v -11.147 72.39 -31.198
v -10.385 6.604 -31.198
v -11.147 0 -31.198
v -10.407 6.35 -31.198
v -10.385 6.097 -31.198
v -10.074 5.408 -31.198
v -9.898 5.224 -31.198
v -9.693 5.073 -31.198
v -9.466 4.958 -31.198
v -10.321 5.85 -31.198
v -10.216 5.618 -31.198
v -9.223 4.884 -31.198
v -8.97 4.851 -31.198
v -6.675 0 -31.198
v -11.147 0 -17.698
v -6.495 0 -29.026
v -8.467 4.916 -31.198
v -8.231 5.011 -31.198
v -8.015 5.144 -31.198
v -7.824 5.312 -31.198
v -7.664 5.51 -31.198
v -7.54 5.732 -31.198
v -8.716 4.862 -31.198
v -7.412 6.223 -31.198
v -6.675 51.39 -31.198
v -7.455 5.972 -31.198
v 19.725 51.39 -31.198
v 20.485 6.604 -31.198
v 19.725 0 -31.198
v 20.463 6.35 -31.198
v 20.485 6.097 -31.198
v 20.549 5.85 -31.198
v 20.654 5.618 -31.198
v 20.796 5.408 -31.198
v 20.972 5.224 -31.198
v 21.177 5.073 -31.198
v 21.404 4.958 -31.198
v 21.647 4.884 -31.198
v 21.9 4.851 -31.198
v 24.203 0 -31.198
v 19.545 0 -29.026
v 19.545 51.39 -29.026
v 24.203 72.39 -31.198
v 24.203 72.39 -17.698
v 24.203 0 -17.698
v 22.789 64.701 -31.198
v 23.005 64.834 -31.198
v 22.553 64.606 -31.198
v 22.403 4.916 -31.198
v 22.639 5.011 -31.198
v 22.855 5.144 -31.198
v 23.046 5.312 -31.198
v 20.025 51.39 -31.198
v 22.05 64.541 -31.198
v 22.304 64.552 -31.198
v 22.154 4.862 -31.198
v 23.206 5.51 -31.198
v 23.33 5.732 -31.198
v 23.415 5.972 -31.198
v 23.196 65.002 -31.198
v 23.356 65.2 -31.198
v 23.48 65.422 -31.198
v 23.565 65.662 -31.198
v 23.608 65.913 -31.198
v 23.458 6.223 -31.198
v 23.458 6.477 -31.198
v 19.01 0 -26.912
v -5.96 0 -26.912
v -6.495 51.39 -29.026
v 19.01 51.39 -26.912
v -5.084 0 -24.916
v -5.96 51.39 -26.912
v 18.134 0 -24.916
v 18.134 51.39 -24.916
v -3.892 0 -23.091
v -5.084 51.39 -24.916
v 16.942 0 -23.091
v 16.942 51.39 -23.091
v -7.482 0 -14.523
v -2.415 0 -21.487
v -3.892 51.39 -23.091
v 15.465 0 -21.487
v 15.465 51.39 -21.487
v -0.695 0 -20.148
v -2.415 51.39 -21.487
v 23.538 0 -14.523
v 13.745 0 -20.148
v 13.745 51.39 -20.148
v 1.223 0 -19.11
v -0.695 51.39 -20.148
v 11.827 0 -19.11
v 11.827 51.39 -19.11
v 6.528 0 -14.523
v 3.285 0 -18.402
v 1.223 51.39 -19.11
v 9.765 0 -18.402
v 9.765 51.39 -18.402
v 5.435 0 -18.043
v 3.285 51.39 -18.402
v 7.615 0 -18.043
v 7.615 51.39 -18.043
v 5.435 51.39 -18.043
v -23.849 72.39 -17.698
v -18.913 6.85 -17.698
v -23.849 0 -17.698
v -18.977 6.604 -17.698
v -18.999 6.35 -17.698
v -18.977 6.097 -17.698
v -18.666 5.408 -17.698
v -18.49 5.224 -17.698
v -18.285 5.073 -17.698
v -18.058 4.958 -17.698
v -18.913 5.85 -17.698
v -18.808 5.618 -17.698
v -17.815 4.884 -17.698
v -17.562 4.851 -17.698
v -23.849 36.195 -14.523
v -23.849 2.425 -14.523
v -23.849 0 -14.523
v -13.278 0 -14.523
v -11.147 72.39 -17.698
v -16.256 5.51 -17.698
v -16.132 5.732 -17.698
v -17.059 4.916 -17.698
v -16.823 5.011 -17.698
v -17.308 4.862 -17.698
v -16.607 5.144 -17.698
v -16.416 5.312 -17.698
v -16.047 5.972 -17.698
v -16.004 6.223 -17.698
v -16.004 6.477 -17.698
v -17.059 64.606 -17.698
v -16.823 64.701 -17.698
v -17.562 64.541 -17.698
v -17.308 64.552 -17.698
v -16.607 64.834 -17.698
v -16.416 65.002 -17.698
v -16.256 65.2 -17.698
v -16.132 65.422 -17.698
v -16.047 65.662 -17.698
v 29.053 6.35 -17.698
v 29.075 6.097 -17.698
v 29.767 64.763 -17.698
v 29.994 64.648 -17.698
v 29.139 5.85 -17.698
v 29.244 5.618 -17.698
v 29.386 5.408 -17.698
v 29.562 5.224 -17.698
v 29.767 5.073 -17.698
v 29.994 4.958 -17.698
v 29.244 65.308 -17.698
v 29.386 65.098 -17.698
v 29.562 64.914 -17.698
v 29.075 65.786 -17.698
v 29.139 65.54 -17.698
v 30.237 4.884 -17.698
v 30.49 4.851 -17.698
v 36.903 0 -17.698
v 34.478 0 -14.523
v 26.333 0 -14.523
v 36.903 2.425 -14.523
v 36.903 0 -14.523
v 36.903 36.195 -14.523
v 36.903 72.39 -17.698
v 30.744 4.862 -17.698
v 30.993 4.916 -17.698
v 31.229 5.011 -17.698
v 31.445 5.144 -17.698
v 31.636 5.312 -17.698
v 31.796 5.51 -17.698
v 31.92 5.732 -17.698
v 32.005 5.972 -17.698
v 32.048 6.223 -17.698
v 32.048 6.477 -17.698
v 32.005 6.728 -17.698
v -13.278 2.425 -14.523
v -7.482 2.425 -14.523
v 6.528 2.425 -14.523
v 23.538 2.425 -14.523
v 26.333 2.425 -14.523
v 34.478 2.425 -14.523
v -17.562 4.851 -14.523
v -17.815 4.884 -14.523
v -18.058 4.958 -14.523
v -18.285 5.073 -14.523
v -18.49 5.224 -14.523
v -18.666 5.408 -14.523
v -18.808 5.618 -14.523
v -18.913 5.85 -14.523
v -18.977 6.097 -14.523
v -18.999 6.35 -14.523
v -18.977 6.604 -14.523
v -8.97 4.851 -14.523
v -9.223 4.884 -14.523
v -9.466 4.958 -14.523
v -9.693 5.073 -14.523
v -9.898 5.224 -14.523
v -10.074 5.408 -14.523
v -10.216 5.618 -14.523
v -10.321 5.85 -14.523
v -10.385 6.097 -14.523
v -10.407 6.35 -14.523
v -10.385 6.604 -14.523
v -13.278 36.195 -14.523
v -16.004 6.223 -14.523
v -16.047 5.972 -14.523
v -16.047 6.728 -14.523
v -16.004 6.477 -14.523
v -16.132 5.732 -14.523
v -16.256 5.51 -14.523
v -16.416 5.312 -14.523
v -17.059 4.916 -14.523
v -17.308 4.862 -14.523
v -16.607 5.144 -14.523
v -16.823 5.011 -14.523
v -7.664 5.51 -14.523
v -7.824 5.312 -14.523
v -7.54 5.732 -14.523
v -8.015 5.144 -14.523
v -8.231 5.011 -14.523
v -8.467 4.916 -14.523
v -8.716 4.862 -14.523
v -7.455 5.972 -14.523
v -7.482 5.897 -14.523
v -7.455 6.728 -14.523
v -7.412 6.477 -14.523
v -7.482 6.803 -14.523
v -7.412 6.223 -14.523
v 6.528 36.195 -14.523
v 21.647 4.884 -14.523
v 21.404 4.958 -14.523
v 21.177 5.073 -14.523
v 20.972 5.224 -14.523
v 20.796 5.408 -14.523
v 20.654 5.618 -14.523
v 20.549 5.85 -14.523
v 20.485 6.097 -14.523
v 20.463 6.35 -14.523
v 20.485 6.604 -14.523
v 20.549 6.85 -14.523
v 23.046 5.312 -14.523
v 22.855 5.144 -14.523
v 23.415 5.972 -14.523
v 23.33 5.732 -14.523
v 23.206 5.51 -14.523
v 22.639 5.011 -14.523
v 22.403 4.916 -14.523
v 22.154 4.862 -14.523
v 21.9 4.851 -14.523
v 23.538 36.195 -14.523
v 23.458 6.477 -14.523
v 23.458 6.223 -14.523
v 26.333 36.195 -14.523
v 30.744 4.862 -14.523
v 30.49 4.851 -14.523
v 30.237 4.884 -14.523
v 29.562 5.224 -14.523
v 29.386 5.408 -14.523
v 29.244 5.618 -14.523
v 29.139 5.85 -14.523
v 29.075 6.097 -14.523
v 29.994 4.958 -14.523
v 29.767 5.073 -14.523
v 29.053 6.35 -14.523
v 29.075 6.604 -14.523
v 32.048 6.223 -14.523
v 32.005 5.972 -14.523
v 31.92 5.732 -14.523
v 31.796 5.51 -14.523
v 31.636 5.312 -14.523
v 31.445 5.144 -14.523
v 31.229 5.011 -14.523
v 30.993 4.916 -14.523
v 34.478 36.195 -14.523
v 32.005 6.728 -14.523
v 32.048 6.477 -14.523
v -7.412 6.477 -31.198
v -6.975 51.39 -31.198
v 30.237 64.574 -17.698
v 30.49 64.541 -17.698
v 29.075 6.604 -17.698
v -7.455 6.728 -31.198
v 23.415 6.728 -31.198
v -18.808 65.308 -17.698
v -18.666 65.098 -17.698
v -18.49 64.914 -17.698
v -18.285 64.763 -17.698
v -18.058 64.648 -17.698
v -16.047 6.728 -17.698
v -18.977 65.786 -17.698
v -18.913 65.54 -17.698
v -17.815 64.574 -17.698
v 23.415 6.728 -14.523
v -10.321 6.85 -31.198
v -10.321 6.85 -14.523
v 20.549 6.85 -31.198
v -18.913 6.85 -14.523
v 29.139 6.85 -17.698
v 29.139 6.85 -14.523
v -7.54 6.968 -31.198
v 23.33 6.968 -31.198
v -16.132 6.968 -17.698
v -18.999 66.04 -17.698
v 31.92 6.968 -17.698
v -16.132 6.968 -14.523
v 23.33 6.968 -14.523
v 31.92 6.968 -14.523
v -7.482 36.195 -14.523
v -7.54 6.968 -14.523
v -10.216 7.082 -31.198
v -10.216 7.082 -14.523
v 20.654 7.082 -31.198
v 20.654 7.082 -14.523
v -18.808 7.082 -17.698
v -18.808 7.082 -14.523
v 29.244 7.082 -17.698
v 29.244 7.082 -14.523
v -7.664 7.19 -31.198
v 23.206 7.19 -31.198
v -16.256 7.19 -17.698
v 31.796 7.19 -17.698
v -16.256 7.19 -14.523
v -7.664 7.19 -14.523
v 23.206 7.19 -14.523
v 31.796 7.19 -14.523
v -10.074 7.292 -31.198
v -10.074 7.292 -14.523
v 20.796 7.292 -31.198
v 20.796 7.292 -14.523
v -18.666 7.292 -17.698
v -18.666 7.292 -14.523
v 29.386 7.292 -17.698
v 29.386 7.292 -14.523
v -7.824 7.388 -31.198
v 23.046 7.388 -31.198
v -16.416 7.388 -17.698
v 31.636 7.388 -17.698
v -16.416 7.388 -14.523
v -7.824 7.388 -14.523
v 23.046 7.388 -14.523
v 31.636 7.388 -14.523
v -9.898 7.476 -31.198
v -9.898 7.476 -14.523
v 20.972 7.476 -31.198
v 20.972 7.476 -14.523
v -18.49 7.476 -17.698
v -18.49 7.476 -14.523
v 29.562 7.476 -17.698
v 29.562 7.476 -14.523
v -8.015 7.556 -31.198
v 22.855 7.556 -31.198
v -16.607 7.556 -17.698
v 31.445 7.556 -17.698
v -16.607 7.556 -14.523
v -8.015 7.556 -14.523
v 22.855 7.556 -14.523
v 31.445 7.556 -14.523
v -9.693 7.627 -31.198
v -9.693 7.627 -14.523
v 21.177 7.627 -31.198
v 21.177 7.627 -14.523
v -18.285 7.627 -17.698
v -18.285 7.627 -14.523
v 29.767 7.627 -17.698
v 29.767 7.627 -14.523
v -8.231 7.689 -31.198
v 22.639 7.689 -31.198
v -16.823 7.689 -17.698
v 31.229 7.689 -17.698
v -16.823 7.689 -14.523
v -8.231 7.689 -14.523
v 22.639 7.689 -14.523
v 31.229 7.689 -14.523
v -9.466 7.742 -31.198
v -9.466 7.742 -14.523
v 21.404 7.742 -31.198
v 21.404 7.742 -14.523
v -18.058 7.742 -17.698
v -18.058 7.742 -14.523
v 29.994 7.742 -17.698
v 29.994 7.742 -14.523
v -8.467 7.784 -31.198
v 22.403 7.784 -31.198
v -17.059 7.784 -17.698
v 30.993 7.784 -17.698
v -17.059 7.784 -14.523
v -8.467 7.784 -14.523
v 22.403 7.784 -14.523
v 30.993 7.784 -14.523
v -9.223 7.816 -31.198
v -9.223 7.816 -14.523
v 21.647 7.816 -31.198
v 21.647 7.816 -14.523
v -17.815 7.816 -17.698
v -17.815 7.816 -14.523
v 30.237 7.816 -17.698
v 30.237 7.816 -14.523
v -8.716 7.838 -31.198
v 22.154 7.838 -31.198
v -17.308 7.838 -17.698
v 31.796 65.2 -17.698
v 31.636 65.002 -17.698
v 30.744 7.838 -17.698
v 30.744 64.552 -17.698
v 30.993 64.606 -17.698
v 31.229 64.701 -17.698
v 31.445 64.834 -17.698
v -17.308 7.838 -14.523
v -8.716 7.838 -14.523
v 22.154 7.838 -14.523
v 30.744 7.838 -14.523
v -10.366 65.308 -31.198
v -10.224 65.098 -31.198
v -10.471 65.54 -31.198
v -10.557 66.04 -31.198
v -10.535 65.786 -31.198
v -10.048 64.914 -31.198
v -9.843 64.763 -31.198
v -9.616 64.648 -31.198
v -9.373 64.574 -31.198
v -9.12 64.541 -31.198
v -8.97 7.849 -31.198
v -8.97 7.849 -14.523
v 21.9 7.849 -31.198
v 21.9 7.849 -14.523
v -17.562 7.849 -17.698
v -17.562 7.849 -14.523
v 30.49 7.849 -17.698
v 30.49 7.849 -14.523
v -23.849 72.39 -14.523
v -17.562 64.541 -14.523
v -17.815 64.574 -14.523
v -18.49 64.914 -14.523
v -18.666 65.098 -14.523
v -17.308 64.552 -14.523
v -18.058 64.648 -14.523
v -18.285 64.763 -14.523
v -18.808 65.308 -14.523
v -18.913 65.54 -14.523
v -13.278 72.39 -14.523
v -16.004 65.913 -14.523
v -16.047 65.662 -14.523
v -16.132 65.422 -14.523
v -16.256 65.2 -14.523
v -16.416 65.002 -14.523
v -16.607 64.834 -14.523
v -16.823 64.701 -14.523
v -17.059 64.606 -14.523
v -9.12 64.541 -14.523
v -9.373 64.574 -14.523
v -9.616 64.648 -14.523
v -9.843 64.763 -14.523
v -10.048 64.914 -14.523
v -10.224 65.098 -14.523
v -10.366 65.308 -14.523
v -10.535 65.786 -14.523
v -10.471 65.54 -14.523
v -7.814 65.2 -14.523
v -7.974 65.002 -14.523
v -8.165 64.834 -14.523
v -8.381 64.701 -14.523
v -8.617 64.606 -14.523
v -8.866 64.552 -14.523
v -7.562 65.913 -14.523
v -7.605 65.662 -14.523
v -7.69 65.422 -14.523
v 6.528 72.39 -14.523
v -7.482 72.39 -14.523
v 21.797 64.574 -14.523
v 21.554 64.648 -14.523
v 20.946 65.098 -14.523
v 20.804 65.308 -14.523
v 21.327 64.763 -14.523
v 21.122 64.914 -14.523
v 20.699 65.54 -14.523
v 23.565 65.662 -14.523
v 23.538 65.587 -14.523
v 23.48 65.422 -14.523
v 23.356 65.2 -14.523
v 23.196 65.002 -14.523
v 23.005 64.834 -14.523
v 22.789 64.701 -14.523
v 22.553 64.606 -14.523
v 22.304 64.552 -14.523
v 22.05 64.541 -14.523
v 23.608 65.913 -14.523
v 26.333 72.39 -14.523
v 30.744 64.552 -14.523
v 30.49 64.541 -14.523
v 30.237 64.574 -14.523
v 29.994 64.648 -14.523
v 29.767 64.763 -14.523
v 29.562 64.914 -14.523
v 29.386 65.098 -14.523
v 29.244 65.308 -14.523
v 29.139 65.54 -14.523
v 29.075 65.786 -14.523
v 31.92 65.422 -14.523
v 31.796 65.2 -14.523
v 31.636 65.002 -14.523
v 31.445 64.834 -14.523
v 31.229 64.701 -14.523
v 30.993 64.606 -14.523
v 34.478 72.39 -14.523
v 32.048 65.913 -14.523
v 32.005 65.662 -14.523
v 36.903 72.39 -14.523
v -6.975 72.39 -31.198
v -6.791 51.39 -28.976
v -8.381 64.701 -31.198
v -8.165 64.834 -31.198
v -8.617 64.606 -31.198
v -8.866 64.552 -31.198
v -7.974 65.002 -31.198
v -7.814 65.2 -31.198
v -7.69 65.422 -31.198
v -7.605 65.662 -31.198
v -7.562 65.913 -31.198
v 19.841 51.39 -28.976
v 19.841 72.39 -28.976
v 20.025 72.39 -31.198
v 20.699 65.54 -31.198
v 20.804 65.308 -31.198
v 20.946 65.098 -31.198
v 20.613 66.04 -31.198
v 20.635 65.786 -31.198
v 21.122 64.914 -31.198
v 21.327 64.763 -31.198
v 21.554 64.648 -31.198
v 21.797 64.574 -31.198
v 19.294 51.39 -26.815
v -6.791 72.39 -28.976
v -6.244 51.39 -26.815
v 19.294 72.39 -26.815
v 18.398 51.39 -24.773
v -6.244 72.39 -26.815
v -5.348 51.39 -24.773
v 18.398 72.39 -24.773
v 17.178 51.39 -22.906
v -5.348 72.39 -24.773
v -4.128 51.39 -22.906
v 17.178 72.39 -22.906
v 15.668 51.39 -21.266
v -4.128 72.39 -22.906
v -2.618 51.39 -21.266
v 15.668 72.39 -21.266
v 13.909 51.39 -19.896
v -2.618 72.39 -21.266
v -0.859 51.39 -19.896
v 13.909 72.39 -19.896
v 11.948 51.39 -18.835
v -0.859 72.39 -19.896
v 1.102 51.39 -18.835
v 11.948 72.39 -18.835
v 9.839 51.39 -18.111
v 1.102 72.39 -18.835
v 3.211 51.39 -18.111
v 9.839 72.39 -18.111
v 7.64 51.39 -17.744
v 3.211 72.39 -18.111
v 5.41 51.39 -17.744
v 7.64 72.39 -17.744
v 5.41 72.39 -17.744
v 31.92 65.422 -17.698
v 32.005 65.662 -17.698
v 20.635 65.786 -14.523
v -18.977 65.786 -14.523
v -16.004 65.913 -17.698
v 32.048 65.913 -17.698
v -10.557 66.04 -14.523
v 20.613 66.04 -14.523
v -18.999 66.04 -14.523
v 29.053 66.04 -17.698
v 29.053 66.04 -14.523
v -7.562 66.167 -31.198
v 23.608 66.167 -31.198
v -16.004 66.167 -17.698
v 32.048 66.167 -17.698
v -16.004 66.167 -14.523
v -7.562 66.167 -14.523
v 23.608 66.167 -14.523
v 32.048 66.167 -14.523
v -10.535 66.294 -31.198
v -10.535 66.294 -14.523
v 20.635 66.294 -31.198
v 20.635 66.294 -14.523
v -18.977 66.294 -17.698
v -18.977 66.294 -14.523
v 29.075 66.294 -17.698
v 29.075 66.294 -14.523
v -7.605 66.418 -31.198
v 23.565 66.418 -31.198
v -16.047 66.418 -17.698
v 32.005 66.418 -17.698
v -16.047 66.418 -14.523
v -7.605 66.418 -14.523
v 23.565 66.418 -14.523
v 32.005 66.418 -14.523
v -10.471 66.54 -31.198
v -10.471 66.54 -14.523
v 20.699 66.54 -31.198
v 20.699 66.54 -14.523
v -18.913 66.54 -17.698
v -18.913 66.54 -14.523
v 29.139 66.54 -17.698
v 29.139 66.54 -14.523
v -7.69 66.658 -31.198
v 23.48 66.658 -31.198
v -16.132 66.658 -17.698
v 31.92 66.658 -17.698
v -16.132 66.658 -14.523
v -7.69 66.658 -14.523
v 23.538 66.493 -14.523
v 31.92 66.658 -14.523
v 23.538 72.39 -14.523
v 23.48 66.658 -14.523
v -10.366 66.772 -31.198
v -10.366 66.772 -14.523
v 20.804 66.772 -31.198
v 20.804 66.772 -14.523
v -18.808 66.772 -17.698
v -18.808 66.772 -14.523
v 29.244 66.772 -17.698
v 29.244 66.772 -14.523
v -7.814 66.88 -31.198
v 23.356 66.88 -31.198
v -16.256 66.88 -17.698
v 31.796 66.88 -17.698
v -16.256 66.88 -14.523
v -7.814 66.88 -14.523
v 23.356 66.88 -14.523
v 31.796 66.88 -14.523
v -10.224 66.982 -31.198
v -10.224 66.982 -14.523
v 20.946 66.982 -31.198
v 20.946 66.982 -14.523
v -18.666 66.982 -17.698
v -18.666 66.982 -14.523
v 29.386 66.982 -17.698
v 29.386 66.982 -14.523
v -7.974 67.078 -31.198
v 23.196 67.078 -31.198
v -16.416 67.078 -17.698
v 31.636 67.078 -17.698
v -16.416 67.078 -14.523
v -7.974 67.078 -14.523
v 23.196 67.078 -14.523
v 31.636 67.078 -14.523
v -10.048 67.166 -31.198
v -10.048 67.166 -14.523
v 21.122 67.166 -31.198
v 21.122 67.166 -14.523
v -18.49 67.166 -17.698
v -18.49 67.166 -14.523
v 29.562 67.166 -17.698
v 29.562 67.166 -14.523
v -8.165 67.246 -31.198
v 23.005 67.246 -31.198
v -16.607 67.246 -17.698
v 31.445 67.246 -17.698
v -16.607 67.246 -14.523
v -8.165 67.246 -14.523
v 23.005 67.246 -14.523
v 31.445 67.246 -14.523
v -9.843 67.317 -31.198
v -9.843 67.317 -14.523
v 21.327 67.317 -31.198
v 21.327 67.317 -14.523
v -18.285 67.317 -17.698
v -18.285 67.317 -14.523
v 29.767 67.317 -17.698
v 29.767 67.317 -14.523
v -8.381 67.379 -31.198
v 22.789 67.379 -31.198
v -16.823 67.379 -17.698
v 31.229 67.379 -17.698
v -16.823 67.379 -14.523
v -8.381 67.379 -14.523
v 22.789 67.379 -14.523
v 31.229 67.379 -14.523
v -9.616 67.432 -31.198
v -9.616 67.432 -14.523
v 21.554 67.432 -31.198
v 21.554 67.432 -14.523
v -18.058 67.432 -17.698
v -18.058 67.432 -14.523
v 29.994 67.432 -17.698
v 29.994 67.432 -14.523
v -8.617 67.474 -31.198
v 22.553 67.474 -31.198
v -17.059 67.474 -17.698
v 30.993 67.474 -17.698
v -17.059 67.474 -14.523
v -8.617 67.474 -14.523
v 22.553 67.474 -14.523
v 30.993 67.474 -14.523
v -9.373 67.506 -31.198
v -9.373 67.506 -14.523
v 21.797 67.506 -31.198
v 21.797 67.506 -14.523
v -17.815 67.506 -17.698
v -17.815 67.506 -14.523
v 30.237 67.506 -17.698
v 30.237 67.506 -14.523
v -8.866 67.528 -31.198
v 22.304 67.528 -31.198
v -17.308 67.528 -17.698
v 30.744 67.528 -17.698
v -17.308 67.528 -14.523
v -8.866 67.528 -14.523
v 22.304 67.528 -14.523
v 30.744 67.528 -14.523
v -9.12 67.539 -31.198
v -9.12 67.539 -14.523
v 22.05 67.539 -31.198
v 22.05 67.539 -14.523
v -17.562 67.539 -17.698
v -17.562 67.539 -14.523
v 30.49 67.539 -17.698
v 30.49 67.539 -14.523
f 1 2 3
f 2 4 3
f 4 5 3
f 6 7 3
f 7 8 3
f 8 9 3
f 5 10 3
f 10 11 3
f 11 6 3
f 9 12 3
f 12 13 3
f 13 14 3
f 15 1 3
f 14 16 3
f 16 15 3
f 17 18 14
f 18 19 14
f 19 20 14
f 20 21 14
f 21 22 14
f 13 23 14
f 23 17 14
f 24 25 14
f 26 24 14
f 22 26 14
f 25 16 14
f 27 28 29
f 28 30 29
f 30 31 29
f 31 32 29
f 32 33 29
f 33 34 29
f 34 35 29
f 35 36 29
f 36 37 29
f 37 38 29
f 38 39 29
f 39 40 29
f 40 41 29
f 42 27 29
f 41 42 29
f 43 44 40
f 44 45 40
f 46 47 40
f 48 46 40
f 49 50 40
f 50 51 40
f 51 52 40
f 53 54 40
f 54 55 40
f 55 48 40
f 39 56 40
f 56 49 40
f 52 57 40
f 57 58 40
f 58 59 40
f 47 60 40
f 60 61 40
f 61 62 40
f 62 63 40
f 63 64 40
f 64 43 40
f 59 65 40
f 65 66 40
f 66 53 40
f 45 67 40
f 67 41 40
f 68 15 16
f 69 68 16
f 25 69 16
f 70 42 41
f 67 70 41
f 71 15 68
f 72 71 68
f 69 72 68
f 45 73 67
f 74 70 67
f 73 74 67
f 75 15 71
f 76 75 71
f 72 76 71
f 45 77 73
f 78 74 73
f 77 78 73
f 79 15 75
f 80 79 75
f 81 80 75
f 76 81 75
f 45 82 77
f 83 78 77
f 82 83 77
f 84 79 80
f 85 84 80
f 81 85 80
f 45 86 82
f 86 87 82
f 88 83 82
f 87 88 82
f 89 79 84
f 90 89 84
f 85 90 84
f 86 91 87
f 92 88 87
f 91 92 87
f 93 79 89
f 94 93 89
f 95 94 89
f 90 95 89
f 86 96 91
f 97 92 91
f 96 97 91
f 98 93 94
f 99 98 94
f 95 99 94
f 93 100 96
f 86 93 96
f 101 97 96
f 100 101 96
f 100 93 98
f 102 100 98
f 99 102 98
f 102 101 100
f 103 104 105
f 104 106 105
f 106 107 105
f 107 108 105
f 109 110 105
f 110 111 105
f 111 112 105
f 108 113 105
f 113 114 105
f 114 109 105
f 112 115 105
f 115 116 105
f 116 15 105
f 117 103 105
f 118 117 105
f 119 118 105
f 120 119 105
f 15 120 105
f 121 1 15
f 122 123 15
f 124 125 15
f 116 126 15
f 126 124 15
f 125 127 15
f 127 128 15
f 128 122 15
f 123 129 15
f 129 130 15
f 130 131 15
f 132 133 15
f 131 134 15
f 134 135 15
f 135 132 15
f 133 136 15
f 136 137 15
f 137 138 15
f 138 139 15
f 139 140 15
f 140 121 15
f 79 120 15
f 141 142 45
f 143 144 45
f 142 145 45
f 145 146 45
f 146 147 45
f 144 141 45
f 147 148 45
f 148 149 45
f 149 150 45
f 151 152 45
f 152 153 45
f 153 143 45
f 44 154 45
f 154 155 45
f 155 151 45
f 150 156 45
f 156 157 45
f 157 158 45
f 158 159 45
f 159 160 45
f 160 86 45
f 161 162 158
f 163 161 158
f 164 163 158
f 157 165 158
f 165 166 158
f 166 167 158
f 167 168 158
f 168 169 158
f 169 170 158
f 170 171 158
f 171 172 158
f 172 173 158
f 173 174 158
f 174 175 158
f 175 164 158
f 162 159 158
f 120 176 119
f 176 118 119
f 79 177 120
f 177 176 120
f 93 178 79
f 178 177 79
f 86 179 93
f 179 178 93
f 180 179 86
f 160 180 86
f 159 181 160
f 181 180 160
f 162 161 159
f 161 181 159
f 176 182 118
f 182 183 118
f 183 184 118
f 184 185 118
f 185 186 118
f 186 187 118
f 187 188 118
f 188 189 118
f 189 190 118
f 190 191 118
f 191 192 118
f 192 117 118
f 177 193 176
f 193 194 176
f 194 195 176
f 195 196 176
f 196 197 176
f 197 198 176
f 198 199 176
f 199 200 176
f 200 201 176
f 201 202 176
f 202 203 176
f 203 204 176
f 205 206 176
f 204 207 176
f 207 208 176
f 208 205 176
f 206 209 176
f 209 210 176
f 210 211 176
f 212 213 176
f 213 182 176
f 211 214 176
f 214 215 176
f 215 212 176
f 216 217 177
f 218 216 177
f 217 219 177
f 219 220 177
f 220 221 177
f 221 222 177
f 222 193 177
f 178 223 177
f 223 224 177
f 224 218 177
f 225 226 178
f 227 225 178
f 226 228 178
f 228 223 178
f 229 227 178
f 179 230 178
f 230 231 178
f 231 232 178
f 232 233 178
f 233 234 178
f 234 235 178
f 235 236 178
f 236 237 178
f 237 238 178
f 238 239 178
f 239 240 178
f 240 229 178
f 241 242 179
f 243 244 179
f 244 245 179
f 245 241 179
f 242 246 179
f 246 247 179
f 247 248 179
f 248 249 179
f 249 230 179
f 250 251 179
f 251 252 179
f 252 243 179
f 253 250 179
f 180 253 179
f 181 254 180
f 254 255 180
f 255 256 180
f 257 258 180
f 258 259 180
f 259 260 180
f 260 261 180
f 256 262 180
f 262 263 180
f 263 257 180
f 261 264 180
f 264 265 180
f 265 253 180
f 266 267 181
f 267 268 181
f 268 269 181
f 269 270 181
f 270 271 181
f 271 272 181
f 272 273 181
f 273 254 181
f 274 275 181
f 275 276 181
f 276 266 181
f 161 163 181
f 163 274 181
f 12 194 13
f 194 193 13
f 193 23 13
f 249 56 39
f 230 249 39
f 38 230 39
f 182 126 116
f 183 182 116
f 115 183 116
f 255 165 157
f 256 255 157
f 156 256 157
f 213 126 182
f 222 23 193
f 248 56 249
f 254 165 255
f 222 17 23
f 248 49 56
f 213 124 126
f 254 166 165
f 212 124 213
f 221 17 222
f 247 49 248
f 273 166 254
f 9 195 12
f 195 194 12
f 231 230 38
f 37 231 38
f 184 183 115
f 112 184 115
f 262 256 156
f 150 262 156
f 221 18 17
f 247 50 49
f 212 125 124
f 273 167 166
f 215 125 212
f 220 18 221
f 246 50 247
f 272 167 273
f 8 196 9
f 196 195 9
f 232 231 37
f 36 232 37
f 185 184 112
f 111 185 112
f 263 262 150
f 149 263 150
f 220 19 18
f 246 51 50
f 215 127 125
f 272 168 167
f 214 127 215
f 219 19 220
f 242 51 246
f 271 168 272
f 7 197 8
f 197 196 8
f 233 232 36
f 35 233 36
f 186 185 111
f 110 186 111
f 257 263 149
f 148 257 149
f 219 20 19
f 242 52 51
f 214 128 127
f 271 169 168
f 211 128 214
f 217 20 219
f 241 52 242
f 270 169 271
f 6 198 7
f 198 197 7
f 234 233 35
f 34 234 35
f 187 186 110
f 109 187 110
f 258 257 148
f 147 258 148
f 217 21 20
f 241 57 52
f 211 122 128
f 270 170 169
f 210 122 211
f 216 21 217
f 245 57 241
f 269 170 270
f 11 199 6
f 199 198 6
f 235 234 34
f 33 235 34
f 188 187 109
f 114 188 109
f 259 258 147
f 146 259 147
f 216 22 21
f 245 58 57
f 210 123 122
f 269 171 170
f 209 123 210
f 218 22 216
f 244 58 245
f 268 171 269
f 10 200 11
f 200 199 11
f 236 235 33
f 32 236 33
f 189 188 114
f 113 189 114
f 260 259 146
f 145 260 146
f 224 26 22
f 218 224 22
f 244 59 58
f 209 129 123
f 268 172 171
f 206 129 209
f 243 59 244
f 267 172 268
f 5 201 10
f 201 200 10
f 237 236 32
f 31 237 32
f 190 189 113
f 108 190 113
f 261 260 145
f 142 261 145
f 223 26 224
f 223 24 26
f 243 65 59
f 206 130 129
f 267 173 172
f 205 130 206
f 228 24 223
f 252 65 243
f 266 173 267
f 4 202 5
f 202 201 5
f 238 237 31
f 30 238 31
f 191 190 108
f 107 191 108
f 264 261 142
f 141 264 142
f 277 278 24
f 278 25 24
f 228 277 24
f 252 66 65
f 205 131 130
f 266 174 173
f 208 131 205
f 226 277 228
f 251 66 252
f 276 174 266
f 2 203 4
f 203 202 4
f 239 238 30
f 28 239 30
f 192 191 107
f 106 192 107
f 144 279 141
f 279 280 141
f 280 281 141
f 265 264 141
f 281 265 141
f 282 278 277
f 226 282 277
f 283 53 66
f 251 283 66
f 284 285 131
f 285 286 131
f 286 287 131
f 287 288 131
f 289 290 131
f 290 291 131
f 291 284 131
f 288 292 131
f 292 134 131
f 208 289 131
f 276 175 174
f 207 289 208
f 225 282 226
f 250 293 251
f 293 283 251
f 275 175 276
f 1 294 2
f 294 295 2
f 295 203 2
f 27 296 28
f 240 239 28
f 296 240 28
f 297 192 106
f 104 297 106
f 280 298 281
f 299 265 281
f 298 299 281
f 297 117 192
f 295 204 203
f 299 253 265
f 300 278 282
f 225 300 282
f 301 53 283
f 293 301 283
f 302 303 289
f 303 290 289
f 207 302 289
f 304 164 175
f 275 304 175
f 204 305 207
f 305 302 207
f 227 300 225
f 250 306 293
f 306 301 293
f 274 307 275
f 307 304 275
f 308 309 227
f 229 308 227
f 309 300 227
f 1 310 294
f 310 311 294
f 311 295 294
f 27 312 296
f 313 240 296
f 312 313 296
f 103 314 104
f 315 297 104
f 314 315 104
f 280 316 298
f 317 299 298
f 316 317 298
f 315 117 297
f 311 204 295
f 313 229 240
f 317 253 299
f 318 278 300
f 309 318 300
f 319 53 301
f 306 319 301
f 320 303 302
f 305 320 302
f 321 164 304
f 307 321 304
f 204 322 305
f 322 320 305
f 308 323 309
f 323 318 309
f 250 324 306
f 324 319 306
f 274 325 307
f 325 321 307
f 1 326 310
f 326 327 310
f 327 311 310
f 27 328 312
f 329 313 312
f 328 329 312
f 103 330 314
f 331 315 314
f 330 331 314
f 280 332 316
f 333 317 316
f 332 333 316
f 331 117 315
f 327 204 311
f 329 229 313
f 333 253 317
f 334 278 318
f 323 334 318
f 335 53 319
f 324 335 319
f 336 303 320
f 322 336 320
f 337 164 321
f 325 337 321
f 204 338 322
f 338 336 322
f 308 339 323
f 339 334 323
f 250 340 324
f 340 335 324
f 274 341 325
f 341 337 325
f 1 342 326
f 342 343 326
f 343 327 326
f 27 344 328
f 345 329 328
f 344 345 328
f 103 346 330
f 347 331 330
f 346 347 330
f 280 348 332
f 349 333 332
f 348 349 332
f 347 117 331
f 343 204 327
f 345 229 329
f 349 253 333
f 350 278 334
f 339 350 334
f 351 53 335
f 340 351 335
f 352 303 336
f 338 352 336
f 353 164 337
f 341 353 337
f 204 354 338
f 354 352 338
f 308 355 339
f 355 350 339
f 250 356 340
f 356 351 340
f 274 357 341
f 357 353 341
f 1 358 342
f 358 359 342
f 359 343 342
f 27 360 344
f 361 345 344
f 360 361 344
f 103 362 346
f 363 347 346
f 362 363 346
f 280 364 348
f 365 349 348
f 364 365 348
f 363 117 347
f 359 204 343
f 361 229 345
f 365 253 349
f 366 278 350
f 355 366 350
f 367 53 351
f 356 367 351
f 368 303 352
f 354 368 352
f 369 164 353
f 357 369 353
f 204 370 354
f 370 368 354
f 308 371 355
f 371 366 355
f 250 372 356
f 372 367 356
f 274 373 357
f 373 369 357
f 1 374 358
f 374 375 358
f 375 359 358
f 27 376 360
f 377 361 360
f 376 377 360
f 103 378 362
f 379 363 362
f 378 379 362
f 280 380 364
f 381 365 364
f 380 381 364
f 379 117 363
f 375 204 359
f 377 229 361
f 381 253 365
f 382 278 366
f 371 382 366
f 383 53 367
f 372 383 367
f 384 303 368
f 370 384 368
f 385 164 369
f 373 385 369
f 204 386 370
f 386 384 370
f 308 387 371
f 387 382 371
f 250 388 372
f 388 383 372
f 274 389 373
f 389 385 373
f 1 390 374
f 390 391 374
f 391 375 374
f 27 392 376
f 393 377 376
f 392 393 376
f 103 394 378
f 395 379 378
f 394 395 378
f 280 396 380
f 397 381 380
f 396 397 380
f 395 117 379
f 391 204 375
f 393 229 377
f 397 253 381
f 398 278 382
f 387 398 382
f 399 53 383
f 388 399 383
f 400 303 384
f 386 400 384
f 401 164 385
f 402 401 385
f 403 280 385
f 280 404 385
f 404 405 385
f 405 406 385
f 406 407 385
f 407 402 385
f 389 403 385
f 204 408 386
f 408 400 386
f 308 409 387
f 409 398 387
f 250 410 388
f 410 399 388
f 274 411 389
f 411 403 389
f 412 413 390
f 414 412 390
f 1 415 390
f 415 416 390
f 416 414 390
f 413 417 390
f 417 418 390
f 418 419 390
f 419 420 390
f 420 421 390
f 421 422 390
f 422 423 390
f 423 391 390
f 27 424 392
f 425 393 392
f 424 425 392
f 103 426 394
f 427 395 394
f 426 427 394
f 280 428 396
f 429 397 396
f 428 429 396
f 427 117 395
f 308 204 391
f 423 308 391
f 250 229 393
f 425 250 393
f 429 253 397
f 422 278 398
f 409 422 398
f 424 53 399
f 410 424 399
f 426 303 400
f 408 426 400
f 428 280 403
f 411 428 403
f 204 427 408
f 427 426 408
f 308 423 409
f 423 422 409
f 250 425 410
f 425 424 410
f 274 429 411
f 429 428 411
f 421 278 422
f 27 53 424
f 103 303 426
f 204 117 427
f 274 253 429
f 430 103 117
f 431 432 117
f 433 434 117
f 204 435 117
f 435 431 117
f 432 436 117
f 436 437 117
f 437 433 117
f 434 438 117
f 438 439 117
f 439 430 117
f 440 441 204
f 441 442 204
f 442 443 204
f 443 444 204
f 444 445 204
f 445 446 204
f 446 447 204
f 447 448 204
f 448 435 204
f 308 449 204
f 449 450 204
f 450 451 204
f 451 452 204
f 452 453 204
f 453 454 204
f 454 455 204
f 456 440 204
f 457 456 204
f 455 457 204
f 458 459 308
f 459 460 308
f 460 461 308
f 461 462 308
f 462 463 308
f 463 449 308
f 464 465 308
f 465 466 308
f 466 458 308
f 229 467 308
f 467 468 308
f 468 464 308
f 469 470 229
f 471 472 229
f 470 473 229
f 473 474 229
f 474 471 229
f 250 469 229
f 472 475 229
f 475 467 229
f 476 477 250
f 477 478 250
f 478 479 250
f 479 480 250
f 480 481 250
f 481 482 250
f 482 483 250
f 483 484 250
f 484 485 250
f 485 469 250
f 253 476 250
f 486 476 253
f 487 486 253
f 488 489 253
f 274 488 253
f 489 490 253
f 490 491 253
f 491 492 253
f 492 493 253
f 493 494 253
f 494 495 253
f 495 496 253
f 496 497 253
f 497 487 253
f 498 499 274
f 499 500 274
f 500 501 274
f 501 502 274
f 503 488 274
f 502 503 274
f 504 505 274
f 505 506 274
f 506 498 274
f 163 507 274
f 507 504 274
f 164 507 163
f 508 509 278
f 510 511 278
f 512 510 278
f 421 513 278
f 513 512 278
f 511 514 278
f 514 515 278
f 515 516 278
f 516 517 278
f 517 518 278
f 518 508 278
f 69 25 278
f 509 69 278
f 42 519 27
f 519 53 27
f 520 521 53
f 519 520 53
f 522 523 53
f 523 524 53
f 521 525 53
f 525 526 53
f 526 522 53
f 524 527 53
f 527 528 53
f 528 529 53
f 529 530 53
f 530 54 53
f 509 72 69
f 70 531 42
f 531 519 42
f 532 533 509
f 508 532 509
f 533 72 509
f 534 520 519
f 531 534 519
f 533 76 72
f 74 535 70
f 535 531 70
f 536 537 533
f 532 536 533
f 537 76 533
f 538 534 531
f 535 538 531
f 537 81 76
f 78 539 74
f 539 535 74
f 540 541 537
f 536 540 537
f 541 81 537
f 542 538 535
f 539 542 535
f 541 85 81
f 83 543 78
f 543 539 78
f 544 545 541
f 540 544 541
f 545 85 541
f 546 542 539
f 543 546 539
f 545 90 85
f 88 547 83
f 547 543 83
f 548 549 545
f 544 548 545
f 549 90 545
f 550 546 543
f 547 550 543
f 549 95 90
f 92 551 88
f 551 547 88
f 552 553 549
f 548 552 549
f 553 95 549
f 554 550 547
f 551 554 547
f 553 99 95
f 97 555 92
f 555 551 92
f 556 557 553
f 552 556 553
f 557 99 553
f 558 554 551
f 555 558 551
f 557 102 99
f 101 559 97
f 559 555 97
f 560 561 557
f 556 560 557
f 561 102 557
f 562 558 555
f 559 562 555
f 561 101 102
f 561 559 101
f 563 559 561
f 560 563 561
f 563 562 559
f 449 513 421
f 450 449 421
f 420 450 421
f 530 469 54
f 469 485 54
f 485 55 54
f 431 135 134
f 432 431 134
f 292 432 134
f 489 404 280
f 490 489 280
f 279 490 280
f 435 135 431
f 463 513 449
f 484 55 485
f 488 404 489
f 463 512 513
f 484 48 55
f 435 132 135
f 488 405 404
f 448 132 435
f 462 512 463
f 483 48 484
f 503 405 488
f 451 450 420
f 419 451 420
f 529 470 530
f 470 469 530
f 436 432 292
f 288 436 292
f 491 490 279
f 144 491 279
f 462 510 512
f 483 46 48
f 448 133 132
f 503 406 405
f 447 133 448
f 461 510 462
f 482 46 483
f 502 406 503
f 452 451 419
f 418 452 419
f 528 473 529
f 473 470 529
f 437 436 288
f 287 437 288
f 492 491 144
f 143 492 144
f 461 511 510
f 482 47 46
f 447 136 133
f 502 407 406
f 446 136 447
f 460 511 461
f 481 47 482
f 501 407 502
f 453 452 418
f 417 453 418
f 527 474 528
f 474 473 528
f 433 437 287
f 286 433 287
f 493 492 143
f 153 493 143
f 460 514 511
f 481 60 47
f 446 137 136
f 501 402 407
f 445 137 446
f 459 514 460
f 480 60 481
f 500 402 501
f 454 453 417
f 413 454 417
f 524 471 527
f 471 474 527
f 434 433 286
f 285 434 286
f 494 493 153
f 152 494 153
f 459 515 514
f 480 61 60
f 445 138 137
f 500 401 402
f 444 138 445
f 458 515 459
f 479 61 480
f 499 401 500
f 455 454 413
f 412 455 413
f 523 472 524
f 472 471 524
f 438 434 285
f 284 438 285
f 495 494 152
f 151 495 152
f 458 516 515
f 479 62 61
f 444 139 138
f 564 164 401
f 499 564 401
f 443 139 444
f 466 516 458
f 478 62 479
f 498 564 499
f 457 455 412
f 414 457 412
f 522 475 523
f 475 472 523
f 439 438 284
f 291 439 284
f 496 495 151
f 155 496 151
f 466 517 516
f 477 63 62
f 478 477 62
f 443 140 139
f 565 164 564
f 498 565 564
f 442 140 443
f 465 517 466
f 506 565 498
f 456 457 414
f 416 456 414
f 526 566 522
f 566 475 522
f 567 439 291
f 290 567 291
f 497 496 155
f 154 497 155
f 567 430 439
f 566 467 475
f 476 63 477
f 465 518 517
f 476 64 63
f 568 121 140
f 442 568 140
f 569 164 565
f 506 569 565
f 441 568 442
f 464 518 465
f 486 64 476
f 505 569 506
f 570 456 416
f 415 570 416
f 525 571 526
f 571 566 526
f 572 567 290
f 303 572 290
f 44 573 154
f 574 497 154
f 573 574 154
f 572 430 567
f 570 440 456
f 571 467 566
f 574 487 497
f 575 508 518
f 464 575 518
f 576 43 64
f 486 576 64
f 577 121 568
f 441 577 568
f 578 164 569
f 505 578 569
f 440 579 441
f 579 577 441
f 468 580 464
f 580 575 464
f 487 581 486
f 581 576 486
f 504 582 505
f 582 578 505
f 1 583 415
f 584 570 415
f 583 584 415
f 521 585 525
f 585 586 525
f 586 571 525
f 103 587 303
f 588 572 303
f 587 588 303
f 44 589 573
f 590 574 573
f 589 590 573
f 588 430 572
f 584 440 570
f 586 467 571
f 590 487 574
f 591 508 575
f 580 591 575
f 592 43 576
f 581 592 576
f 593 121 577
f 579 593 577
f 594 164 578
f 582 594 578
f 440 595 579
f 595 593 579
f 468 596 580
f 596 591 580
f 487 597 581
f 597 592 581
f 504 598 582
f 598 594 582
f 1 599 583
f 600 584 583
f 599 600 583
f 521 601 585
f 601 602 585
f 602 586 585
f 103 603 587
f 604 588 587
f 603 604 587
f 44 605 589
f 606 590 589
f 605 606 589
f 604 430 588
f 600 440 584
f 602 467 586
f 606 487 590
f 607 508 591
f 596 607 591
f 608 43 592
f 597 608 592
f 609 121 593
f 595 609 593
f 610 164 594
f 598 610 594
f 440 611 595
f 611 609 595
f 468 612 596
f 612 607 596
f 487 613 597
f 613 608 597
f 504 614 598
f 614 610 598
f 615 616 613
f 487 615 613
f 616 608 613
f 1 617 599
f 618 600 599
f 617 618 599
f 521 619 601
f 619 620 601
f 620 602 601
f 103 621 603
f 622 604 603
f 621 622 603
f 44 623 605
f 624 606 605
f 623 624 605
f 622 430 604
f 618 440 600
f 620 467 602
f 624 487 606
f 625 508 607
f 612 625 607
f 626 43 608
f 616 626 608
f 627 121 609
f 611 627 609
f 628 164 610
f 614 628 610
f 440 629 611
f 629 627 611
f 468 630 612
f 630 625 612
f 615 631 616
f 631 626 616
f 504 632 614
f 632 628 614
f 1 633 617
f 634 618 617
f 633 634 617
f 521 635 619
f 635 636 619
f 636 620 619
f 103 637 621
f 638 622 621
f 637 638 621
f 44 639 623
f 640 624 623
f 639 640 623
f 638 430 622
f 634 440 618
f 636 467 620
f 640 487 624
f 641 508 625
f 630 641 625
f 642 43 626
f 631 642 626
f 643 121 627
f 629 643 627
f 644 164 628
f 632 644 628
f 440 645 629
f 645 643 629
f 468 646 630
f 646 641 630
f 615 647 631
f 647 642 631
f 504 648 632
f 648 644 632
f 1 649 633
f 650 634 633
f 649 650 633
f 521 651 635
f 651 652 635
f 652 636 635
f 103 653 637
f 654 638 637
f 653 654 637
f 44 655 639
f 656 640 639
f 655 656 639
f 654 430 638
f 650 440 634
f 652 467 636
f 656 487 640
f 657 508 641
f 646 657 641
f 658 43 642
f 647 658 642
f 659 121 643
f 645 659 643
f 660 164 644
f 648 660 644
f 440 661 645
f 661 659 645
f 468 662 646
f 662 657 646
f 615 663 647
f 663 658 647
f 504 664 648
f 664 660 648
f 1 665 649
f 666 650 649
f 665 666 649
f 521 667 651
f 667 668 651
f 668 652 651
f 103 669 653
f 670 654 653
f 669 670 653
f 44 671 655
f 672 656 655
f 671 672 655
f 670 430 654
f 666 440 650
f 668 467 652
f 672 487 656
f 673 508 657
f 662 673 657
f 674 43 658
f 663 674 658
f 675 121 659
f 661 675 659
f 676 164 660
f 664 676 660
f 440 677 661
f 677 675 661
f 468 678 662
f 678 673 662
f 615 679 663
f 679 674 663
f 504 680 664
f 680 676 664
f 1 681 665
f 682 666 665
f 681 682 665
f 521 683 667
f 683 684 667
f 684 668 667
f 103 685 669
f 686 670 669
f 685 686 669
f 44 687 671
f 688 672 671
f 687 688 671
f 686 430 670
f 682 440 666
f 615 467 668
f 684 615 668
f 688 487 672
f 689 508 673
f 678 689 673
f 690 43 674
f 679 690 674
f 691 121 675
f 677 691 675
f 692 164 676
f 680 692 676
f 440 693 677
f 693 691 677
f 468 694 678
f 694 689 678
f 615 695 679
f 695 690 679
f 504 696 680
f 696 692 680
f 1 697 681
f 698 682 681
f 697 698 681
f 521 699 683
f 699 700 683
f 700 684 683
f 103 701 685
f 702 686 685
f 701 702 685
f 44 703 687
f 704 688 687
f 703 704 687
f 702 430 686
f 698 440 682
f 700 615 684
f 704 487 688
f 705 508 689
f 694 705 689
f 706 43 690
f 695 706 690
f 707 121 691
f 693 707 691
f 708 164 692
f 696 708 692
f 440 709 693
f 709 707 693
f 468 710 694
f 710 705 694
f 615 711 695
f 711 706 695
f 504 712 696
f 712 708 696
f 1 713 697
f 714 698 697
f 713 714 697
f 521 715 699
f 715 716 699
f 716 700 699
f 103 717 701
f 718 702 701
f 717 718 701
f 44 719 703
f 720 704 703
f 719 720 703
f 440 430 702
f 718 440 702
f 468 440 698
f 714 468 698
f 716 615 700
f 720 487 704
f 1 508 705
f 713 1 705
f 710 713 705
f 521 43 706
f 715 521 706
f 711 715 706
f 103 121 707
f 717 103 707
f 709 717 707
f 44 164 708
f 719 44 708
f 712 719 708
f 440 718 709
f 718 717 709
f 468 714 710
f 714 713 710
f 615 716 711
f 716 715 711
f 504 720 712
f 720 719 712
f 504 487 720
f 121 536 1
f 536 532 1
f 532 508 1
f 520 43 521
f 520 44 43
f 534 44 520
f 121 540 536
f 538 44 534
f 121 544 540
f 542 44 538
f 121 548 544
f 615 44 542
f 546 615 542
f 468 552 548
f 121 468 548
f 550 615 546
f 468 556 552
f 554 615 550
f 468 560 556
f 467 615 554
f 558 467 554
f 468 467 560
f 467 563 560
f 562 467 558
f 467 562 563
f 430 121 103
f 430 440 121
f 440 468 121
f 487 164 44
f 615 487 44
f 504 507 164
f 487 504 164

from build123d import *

# Parameters (mm, degrees)
BOSS_EXTRUDE3_DEPTH   = 72.39
BOSS_EXTRUDE4_DEPTH   = 51.39
F_3_0MM_DOWEL_HOLE1_D = 3
F_3_0MM_DOWEL_HOLE2_D = 3
F_3_0MM_DOWEL_HOLE4_D = 3


with BuildPart() as part:
    # Sketch1 → Boss-Extrude3 (new body)
    with BuildSketch(Plane(origin=(0, 0, 0), x_dir=(1, 0, 0), z_dir=(0, 1, 0))):
        with BuildLine():
            Line((-11.1466884, 17.698170271), (-23.8485284, 17.698170271))
            Line((-23.8485284, 17.698170271), (-23.8485284, 14.523170271))
            Line((-23.8485284, 14.523170271), (36.9033116, 14.523170271))
            Line((36.9033116, 14.523170271), (36.9033116, 17.698170271))
            Line((36.9033116, 17.698170271), (24.2033116, 17.698170271))
            Line((24.2033116, 17.698170271), (24.2033116, 31.198170271))
            Line((24.2033116, 31.198170271), (20.025, 31.198170271))
            ThreePointArc((20.025, 31.198170271), (6.525, 17.69817027), (-6.975, 31.198170271))
            Line((-6.975, 31.198170271), (-11.1466884, 31.198170271))
            Line((-11.1466884, 31.198170271), (-11.1466884, 17.698170271))
        make_face()
    extrude(amount=BOSS_EXTRUDE3_DEPTH)

    # Sketch1<13> → Boss-Extrude4 (add)
    with BuildSketch(Plane(origin=(0, 0, 0), x_dir=(1, 0, 0), z_dir=(0, 1, 0))):
        with BuildLine():
            Line((-6.975, 31.198170271), (-6.675, 31.198170271))
            ThreePointArc((-6.675, 31.198170271), (6.525, 17.99817027), (19.725, 31.198170271))
            Line((19.725, 31.198170271), (20.025, 31.198170271))
            ThreePointArc((20.025, 31.198170271), (6.525, 17.69817027), (-6.975, 31.198170271))
        make_face()
    extrude(amount=BOSS_EXTRUDE4_DEPTH)

    # Ø3.0mm Dowel Hole1 (through all)
    with Locations(Plane(origin=(0, 0, -17.698170271), x_dir=(-1, 0, 0), z_dir=(0, 0, -1))):
        with Locations((-30.5533116, 66.04), (-30.5533116, 6.35)):
            Hole(F_3_0MM_DOWEL_HOLE1_D / 2)

    # Ø3.0mm Dowel Hole2 (through all)
    with Locations(Plane(origin=(0, 0, -17.698170271), x_dir=(-1, 0, 0), z_dir=(0, 0, -1))):
        with Locations((17.4985284, 6.35), (17.4985284, 66.04)):
            Hole(F_3_0MM_DOWEL_HOLE2_D / 2)

    # Ø3.0mm Dowel Hole4 (through all)
    with Locations(Plane(origin=(0, 0, -31.198170271), x_dir=(-1, 0, 0), z_dir=(0, 0, -1))):
        with Locations((-22.1133116, 66.04), (9.0566884, 66.04), (8.9066884, 6.35), (-21.9633116, 6.35)):
            Hole(F_3_0MM_DOWEL_HOLE4_D / 2)


solid = part.part
